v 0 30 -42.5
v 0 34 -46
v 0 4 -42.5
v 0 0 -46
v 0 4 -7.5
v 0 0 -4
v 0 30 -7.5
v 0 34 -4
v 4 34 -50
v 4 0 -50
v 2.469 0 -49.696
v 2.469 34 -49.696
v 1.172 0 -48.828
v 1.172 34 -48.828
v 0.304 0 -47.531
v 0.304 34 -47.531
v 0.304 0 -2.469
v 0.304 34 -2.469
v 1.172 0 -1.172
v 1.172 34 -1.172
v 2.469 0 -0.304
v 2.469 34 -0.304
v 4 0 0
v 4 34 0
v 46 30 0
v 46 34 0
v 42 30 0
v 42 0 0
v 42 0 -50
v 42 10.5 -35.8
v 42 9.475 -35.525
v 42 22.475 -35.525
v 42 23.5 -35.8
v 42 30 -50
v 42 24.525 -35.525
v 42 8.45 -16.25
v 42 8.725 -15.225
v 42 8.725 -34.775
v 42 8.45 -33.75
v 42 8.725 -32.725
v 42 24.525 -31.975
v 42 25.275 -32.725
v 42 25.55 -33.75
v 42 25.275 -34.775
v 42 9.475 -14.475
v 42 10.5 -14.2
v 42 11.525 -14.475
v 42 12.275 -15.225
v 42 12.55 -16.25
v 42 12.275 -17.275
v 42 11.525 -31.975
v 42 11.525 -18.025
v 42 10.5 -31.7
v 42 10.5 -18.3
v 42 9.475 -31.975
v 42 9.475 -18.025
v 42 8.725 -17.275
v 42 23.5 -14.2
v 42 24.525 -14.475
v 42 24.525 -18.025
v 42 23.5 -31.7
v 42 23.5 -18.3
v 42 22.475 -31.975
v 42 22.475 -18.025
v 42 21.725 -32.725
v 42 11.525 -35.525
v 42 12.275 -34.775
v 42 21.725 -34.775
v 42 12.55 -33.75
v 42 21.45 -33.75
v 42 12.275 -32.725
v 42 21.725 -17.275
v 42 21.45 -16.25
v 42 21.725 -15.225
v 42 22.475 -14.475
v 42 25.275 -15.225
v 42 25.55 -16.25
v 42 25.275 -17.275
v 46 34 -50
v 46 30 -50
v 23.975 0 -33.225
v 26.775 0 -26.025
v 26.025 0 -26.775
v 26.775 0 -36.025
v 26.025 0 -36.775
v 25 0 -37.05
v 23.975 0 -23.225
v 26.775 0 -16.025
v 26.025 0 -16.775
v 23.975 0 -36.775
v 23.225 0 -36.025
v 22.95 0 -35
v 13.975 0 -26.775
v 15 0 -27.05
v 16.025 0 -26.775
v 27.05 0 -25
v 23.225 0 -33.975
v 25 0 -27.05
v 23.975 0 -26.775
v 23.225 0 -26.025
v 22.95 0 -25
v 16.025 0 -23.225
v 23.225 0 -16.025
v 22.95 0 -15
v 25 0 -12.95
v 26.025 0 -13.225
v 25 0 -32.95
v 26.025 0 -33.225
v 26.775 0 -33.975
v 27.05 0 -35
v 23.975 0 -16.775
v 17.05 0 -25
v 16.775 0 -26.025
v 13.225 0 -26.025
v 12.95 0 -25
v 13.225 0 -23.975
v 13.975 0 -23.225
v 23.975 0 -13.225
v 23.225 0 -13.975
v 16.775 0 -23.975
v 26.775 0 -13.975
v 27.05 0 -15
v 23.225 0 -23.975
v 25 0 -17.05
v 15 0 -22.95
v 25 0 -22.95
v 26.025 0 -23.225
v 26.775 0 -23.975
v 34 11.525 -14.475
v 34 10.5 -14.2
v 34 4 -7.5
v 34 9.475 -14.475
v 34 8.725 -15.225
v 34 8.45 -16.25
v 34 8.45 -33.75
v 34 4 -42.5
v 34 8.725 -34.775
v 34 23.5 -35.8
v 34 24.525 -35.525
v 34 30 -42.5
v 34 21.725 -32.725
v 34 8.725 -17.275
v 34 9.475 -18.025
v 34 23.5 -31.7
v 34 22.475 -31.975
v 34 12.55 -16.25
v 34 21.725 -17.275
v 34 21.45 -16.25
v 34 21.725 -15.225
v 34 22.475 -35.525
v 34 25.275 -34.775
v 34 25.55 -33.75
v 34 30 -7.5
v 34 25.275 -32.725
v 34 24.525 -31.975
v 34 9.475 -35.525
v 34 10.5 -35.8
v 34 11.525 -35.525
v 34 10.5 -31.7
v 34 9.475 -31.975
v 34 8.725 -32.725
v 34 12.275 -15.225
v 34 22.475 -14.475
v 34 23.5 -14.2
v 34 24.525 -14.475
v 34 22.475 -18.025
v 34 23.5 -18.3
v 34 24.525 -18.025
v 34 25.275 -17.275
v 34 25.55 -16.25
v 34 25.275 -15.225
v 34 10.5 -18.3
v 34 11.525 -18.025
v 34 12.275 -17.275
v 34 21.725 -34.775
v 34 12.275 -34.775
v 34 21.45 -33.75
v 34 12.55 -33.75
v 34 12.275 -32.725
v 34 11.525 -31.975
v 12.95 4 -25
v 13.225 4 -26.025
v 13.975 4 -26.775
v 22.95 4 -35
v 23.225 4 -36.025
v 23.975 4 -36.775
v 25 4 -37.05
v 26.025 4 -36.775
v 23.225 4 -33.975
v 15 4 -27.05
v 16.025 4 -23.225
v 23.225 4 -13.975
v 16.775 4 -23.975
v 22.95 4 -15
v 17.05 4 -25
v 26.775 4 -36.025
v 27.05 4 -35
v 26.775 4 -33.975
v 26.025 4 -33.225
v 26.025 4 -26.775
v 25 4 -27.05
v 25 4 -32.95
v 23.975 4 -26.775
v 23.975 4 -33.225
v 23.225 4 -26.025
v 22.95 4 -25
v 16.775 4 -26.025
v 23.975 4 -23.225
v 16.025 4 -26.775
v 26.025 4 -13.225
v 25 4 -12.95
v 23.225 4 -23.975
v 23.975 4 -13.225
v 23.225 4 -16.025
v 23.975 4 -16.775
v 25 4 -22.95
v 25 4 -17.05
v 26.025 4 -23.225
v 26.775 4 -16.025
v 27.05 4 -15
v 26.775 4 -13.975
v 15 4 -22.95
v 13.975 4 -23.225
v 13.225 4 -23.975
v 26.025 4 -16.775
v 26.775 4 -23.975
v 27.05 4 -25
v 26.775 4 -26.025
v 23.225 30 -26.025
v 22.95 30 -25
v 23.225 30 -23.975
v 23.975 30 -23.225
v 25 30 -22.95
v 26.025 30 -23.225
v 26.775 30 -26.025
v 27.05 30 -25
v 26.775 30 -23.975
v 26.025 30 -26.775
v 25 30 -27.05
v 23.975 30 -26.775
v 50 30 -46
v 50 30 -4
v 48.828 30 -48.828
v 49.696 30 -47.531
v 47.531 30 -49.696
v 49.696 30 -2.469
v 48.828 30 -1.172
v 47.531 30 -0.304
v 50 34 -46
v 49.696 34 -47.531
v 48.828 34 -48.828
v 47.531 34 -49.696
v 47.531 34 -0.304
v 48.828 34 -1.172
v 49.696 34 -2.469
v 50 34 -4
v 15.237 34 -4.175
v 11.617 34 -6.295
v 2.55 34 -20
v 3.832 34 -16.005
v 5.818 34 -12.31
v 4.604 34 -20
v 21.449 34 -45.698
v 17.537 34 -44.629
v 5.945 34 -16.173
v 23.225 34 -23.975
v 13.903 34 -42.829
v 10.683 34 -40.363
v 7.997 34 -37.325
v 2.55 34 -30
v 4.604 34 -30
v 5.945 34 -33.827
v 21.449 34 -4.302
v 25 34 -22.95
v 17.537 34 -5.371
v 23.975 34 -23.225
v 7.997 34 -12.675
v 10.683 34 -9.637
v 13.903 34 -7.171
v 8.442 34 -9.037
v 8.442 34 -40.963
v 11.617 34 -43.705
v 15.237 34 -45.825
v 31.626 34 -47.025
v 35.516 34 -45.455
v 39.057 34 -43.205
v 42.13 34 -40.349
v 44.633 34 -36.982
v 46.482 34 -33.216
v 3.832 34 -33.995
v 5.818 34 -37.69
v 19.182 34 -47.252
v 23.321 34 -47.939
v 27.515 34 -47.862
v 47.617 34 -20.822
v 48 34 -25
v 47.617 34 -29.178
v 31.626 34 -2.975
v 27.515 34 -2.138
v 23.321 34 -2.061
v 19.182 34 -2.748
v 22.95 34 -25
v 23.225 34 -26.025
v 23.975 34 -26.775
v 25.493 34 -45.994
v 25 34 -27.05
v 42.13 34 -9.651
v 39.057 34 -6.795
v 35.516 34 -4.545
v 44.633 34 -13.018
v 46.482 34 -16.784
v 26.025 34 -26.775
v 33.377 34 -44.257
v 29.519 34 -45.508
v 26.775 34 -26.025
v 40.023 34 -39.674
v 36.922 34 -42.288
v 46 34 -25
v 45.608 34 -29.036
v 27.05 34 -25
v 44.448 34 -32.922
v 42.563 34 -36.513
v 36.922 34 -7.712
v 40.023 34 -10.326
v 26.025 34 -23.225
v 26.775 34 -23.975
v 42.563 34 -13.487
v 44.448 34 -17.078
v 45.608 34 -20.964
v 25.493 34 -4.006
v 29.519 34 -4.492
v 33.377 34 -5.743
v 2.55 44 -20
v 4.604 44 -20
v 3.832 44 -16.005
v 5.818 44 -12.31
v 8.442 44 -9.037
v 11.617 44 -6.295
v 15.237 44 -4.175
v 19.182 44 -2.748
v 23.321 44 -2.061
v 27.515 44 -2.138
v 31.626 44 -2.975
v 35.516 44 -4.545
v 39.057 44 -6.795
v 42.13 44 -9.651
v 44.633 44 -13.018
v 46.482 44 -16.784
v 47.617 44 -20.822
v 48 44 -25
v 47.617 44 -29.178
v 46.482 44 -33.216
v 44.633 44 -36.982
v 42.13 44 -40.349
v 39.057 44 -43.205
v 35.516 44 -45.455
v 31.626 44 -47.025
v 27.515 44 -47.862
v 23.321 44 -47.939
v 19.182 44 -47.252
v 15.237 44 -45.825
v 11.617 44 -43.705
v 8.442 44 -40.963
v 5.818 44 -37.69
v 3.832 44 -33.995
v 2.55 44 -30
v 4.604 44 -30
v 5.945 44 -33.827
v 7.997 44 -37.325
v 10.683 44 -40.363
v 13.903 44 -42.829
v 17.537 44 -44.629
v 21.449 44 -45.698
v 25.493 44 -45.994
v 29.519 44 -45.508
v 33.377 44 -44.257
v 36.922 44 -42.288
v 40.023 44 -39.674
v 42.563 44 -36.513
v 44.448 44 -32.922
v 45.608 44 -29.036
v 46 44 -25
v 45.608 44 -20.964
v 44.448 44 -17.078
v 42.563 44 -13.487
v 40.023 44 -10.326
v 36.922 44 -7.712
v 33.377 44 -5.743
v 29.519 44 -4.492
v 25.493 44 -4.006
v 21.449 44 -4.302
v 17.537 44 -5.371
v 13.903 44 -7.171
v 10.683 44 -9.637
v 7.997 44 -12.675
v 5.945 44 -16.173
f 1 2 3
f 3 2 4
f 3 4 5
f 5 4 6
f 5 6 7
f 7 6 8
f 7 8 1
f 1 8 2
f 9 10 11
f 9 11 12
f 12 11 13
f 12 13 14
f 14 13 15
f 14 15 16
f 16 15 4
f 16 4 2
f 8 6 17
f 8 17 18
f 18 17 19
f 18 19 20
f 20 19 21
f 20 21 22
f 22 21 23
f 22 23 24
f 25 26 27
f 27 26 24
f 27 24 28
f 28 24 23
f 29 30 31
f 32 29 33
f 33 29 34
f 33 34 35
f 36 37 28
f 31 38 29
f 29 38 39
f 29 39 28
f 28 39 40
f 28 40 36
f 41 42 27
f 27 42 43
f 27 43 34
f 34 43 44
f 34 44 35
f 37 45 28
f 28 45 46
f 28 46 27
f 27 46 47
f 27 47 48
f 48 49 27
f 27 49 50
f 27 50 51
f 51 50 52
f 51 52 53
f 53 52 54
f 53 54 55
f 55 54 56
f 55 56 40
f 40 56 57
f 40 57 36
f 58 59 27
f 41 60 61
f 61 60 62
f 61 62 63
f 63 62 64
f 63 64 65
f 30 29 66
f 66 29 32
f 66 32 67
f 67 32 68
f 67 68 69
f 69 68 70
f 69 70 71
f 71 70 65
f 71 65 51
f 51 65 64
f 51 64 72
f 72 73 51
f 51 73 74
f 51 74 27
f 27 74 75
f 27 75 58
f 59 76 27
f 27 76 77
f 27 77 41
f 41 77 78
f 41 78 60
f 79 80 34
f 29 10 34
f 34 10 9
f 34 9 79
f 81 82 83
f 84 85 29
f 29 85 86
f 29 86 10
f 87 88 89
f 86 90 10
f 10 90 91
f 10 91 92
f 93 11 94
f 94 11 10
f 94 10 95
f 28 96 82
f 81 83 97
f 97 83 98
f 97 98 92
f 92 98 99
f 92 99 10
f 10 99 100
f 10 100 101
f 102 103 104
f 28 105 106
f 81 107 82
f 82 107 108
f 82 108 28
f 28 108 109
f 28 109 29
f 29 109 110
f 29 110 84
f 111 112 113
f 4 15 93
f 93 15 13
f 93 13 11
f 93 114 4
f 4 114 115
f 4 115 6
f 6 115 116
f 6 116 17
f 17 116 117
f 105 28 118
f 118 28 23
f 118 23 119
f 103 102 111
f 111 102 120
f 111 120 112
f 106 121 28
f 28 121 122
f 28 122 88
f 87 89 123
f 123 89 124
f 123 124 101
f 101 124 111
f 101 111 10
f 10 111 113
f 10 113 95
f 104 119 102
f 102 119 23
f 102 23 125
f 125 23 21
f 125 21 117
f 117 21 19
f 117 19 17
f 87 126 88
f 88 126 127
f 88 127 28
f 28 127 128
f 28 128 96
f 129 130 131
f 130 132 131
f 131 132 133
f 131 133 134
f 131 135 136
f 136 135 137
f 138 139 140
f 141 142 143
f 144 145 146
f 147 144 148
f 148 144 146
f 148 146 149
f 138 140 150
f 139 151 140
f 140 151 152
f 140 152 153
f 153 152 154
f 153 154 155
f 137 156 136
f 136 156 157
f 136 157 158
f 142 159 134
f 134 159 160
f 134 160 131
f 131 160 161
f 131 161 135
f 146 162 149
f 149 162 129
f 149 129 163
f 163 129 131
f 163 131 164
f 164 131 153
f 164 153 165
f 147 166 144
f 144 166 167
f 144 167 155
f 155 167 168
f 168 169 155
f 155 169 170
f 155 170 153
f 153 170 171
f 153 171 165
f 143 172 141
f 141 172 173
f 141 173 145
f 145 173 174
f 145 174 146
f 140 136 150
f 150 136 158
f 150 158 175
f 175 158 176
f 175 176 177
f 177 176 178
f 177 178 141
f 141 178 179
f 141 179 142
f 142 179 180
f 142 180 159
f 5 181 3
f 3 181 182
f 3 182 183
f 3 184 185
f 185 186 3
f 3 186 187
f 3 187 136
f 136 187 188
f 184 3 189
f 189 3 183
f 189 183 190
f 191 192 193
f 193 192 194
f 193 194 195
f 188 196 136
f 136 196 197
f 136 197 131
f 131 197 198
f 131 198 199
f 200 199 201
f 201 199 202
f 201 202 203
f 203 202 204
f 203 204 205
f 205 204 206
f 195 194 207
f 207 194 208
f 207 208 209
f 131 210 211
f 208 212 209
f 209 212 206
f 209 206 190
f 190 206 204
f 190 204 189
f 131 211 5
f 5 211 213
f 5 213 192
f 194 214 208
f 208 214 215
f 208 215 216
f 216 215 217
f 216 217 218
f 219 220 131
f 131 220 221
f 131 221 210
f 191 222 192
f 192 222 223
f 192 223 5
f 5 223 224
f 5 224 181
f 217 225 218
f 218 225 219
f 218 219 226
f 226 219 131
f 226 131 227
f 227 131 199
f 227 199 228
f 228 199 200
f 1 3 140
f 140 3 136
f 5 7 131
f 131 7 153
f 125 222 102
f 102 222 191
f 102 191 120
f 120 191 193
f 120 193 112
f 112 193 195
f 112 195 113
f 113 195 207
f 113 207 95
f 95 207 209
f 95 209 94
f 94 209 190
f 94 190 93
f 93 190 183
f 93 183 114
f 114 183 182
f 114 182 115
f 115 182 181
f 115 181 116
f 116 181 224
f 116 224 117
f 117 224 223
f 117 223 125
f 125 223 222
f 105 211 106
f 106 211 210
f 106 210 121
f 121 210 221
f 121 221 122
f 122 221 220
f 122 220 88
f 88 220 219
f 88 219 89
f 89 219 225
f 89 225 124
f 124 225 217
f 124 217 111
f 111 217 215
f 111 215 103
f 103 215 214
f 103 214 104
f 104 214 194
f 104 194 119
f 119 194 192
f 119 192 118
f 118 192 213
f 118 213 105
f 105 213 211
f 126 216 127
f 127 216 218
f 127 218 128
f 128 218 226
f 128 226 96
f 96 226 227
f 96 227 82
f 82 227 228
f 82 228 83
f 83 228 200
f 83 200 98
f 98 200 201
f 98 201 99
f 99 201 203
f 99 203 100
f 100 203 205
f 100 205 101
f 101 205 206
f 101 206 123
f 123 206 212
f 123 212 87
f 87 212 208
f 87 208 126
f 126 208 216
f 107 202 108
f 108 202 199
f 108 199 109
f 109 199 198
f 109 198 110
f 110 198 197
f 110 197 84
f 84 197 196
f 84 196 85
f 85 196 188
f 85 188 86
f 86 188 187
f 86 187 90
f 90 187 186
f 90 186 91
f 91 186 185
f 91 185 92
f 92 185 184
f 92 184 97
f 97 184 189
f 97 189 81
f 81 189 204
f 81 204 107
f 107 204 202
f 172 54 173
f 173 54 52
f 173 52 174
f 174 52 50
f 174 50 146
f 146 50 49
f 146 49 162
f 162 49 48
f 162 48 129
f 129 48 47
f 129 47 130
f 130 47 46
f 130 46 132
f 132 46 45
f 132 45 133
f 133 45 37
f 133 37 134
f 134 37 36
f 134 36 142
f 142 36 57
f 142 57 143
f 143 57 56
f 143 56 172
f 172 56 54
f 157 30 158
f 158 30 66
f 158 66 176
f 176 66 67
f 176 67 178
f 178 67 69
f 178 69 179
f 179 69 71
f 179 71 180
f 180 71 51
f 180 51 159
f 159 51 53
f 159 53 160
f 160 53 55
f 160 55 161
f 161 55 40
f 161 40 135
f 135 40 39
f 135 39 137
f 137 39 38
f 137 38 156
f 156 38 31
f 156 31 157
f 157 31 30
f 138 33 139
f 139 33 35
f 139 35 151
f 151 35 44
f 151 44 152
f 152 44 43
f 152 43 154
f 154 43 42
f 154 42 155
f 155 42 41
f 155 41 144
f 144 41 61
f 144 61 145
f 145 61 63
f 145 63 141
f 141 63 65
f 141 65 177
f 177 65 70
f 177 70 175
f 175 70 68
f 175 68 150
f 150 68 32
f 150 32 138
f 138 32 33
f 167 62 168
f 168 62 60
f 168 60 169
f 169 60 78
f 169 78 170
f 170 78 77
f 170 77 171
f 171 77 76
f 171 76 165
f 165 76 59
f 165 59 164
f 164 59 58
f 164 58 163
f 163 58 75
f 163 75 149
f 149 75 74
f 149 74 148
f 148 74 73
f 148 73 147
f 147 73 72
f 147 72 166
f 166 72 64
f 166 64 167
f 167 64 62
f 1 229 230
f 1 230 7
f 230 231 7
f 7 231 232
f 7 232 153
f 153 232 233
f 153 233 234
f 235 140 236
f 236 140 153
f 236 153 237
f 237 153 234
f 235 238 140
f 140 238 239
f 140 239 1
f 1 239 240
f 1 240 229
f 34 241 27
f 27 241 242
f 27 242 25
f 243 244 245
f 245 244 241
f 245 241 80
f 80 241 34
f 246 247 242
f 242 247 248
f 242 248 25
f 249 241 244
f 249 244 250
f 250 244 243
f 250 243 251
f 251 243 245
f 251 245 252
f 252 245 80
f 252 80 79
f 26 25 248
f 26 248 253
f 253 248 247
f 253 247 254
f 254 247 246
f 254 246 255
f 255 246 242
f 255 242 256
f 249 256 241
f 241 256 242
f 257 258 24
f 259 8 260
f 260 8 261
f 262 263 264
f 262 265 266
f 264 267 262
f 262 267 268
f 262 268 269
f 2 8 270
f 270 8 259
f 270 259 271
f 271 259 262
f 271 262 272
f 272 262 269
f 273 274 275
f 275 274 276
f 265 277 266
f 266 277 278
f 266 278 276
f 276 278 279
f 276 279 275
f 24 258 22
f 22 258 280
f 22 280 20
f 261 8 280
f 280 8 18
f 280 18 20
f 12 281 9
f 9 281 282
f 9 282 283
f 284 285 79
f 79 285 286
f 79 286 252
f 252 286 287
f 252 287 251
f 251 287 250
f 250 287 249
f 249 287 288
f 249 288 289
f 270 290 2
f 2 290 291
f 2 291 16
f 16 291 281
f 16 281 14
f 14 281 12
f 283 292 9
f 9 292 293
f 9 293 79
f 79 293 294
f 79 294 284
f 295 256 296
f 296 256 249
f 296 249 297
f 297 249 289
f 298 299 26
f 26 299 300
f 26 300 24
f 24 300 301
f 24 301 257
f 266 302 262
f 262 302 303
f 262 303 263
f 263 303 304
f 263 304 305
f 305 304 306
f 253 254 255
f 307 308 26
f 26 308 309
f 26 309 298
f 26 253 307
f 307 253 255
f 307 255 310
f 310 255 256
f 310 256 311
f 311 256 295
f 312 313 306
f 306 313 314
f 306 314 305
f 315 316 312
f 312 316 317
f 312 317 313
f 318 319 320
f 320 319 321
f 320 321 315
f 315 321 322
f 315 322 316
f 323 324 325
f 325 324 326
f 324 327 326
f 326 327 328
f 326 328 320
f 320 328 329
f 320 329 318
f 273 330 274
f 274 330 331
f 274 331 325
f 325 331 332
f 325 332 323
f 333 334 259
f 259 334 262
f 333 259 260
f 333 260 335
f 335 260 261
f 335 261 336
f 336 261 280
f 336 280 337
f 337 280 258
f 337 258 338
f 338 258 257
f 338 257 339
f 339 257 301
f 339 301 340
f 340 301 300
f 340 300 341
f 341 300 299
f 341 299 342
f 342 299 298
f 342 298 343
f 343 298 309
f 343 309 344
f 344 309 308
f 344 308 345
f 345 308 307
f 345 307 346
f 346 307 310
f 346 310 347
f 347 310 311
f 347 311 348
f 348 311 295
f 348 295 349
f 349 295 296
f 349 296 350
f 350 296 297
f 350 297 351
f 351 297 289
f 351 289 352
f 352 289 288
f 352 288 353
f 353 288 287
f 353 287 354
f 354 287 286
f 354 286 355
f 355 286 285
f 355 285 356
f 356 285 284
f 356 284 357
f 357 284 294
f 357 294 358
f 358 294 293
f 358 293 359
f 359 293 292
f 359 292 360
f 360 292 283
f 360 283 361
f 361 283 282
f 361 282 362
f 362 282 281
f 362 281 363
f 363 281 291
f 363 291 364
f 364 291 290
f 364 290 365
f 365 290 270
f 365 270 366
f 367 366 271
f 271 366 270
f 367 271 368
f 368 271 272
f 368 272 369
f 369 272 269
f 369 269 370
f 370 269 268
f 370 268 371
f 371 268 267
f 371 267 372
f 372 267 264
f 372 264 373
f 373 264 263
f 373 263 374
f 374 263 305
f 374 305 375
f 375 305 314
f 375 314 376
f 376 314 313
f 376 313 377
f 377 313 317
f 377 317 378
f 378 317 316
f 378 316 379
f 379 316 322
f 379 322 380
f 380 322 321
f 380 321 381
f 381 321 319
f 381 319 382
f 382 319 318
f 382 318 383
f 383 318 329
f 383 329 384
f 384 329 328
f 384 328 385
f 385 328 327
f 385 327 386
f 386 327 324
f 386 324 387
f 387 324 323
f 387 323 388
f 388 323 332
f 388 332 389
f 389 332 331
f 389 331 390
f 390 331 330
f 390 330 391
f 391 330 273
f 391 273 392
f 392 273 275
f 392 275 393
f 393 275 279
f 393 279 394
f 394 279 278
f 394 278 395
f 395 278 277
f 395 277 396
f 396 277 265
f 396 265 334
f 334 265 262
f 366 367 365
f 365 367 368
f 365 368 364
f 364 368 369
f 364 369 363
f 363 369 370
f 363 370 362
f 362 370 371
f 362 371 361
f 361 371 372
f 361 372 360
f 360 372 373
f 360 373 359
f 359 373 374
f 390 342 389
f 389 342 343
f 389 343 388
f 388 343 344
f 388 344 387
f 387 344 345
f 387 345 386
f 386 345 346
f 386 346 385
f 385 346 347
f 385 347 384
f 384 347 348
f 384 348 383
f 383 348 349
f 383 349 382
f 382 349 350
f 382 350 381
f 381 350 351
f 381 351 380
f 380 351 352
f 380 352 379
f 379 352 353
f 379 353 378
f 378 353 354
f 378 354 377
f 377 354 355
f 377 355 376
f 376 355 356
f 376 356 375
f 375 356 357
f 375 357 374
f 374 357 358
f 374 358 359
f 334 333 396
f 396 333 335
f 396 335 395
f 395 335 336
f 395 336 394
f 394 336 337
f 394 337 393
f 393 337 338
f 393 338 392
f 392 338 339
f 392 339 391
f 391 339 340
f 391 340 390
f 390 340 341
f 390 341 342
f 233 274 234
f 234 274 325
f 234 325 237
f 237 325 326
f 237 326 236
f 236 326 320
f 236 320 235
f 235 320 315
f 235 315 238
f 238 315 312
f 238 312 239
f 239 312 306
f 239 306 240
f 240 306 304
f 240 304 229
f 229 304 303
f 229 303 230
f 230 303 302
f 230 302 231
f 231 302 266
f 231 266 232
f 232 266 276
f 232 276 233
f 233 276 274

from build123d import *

# Parameters (mm, degrees)
BOSS_EXTRUDE1_DEPTH   = 30
CUT_EXTRUDE1_START    = -7.5
SKETCH3_W             = 34
SKETCH3_H             = 26
CUT_EXTRUDE1_DEPTH    = 35
F_4_0MM_DOWEL_HOLE2_D = 4.1
F_4_0MM_DOWEL_HOLE1_D = 4.1
BOSS_EXTRUDE2_DEPTH   = 4
BOSS_EXTRUDE3_DEPTH   = 10
F_4_0MM_DOWEL_HOLE3_D = 4.1


with BuildPart() as part:
    # Sketch1 → Boss-Extrude1 (new body)
    with BuildSketch(Plane(origin=(0, 0, 0), x_dir=(1, 0, 0), z_dir=(0, 1, 0))):
        with BuildLine():
            Line((42, 0), (42, 50))
            Line((42, 50), (4, 50))
            ThreePointArc((4, 50), (1.171572875, 48.828427125), (0, 46))
            Line((0, 46), (0, 4))
            ThreePointArc((0, 4), (1.171572875, 1.171572875), (4, 0))
            Line((4, 0), (42, 0))
        make_face()
    extrude(amount=BOSS_EXTRUDE1_DEPTH)

    # Sketch3 → Cut-Extrude1 (cut)
    with BuildSketch(Plane.XY.offset(CUT_EXTRUDE1_START)):
        with Locations((17, 17)):
            Rectangle(SKETCH3_W, SKETCH3_H)
    extrude(amount=-CUT_EXTRUDE1_DEPTH, mode=Mode.SUBTRACT)

    # Ø4.0mm Dowel Hole2 (through all)
    with Locations(Plane(origin=(25, 4, -35), x_dir=(1, 0, 0), z_dir=(0, 1, 0))):
        with Locations((0, 0), (0, -10), (0, -20), (-10, -10)):
            Hole(F_4_0MM_DOWEL_HOLE2_D / 2)

    # Ø4.0mm Dowel Hole1 (through all)
    with Locations(Plane(origin=(42, 23.5, -16.25), x_dir=(0, 0, 1), z_dir=(1, 0, 0))):
        with Locations((0, 0), (-17.5, 0), (-17.5, 13), (0, 13)):
            Hole(F_4_0MM_DOWEL_HOLE1_D / 2)

    # Sketch5 → Boss-Extrude2 (add)
    with BuildSketch(Plane(origin=(0, 30, 0), x_dir=(1, 0, 0), z_dir=(0, 1, 0))):
        with BuildLine():
            Line((4, 0), (46, 0))
            ThreePointArc((46, 0), (48.828427125, 1.171572875), (50, 4))
            Line((50, 4), (50, 46))
            ThreePointArc((50, 46), (48.828427125, 48.828427125), (46, 50))
            Line((46, 50), (4, 50))
            ThreePointArc((4, 50), (1.171572875, 48.828427125), (0, 46))
            Line((0, 46), (0, 4))
            ThreePointArc((0, 4), (1.171572875, 1.171572875), (4, 0))
        make_face()
    extrude(amount=BOSS_EXTRUDE2_DEPTH)

    # Sketch8 → Boss-Extrude3 (add)
    with BuildSketch(Plane(origin=(0, 34, 0), x_dir=(1, 0, 0), z_dir=(0, 1, 0))):
        with BuildLine():
            ThreePointArc((48, 25), (27.515082566, 47.862072515), (2.550055679, 30))
            Line((2.550055679, 30), (4.603921946, 30))
            ThreePointArc((4.603921946, 30), (27.518170056, 45.848472835), (46, 25))
            ThreePointArc((46, 25), (27.518170056, 4.151527165), (4.603921946, 20))
            Line((4.603921946, 20), (2.550055679, 20))
            ThreePointArc((2.550055679, 20), (27.515082566, 2.137927485), (48, 25))
        make_face()
    extrude(amount=BOSS_EXTRUDE3_DEPTH)

    # Ø4.0mm Dowel Hole3 (through all)
    with Locations(Plane(origin=(25, 44, -25), x_dir=(0, 0, 1), z_dir=(0, 1, 0))):
        with Locations((0, 0)):
            Hole(F_4_0MM_DOWEL_HOLE3_D / 2)


solid = part.part
